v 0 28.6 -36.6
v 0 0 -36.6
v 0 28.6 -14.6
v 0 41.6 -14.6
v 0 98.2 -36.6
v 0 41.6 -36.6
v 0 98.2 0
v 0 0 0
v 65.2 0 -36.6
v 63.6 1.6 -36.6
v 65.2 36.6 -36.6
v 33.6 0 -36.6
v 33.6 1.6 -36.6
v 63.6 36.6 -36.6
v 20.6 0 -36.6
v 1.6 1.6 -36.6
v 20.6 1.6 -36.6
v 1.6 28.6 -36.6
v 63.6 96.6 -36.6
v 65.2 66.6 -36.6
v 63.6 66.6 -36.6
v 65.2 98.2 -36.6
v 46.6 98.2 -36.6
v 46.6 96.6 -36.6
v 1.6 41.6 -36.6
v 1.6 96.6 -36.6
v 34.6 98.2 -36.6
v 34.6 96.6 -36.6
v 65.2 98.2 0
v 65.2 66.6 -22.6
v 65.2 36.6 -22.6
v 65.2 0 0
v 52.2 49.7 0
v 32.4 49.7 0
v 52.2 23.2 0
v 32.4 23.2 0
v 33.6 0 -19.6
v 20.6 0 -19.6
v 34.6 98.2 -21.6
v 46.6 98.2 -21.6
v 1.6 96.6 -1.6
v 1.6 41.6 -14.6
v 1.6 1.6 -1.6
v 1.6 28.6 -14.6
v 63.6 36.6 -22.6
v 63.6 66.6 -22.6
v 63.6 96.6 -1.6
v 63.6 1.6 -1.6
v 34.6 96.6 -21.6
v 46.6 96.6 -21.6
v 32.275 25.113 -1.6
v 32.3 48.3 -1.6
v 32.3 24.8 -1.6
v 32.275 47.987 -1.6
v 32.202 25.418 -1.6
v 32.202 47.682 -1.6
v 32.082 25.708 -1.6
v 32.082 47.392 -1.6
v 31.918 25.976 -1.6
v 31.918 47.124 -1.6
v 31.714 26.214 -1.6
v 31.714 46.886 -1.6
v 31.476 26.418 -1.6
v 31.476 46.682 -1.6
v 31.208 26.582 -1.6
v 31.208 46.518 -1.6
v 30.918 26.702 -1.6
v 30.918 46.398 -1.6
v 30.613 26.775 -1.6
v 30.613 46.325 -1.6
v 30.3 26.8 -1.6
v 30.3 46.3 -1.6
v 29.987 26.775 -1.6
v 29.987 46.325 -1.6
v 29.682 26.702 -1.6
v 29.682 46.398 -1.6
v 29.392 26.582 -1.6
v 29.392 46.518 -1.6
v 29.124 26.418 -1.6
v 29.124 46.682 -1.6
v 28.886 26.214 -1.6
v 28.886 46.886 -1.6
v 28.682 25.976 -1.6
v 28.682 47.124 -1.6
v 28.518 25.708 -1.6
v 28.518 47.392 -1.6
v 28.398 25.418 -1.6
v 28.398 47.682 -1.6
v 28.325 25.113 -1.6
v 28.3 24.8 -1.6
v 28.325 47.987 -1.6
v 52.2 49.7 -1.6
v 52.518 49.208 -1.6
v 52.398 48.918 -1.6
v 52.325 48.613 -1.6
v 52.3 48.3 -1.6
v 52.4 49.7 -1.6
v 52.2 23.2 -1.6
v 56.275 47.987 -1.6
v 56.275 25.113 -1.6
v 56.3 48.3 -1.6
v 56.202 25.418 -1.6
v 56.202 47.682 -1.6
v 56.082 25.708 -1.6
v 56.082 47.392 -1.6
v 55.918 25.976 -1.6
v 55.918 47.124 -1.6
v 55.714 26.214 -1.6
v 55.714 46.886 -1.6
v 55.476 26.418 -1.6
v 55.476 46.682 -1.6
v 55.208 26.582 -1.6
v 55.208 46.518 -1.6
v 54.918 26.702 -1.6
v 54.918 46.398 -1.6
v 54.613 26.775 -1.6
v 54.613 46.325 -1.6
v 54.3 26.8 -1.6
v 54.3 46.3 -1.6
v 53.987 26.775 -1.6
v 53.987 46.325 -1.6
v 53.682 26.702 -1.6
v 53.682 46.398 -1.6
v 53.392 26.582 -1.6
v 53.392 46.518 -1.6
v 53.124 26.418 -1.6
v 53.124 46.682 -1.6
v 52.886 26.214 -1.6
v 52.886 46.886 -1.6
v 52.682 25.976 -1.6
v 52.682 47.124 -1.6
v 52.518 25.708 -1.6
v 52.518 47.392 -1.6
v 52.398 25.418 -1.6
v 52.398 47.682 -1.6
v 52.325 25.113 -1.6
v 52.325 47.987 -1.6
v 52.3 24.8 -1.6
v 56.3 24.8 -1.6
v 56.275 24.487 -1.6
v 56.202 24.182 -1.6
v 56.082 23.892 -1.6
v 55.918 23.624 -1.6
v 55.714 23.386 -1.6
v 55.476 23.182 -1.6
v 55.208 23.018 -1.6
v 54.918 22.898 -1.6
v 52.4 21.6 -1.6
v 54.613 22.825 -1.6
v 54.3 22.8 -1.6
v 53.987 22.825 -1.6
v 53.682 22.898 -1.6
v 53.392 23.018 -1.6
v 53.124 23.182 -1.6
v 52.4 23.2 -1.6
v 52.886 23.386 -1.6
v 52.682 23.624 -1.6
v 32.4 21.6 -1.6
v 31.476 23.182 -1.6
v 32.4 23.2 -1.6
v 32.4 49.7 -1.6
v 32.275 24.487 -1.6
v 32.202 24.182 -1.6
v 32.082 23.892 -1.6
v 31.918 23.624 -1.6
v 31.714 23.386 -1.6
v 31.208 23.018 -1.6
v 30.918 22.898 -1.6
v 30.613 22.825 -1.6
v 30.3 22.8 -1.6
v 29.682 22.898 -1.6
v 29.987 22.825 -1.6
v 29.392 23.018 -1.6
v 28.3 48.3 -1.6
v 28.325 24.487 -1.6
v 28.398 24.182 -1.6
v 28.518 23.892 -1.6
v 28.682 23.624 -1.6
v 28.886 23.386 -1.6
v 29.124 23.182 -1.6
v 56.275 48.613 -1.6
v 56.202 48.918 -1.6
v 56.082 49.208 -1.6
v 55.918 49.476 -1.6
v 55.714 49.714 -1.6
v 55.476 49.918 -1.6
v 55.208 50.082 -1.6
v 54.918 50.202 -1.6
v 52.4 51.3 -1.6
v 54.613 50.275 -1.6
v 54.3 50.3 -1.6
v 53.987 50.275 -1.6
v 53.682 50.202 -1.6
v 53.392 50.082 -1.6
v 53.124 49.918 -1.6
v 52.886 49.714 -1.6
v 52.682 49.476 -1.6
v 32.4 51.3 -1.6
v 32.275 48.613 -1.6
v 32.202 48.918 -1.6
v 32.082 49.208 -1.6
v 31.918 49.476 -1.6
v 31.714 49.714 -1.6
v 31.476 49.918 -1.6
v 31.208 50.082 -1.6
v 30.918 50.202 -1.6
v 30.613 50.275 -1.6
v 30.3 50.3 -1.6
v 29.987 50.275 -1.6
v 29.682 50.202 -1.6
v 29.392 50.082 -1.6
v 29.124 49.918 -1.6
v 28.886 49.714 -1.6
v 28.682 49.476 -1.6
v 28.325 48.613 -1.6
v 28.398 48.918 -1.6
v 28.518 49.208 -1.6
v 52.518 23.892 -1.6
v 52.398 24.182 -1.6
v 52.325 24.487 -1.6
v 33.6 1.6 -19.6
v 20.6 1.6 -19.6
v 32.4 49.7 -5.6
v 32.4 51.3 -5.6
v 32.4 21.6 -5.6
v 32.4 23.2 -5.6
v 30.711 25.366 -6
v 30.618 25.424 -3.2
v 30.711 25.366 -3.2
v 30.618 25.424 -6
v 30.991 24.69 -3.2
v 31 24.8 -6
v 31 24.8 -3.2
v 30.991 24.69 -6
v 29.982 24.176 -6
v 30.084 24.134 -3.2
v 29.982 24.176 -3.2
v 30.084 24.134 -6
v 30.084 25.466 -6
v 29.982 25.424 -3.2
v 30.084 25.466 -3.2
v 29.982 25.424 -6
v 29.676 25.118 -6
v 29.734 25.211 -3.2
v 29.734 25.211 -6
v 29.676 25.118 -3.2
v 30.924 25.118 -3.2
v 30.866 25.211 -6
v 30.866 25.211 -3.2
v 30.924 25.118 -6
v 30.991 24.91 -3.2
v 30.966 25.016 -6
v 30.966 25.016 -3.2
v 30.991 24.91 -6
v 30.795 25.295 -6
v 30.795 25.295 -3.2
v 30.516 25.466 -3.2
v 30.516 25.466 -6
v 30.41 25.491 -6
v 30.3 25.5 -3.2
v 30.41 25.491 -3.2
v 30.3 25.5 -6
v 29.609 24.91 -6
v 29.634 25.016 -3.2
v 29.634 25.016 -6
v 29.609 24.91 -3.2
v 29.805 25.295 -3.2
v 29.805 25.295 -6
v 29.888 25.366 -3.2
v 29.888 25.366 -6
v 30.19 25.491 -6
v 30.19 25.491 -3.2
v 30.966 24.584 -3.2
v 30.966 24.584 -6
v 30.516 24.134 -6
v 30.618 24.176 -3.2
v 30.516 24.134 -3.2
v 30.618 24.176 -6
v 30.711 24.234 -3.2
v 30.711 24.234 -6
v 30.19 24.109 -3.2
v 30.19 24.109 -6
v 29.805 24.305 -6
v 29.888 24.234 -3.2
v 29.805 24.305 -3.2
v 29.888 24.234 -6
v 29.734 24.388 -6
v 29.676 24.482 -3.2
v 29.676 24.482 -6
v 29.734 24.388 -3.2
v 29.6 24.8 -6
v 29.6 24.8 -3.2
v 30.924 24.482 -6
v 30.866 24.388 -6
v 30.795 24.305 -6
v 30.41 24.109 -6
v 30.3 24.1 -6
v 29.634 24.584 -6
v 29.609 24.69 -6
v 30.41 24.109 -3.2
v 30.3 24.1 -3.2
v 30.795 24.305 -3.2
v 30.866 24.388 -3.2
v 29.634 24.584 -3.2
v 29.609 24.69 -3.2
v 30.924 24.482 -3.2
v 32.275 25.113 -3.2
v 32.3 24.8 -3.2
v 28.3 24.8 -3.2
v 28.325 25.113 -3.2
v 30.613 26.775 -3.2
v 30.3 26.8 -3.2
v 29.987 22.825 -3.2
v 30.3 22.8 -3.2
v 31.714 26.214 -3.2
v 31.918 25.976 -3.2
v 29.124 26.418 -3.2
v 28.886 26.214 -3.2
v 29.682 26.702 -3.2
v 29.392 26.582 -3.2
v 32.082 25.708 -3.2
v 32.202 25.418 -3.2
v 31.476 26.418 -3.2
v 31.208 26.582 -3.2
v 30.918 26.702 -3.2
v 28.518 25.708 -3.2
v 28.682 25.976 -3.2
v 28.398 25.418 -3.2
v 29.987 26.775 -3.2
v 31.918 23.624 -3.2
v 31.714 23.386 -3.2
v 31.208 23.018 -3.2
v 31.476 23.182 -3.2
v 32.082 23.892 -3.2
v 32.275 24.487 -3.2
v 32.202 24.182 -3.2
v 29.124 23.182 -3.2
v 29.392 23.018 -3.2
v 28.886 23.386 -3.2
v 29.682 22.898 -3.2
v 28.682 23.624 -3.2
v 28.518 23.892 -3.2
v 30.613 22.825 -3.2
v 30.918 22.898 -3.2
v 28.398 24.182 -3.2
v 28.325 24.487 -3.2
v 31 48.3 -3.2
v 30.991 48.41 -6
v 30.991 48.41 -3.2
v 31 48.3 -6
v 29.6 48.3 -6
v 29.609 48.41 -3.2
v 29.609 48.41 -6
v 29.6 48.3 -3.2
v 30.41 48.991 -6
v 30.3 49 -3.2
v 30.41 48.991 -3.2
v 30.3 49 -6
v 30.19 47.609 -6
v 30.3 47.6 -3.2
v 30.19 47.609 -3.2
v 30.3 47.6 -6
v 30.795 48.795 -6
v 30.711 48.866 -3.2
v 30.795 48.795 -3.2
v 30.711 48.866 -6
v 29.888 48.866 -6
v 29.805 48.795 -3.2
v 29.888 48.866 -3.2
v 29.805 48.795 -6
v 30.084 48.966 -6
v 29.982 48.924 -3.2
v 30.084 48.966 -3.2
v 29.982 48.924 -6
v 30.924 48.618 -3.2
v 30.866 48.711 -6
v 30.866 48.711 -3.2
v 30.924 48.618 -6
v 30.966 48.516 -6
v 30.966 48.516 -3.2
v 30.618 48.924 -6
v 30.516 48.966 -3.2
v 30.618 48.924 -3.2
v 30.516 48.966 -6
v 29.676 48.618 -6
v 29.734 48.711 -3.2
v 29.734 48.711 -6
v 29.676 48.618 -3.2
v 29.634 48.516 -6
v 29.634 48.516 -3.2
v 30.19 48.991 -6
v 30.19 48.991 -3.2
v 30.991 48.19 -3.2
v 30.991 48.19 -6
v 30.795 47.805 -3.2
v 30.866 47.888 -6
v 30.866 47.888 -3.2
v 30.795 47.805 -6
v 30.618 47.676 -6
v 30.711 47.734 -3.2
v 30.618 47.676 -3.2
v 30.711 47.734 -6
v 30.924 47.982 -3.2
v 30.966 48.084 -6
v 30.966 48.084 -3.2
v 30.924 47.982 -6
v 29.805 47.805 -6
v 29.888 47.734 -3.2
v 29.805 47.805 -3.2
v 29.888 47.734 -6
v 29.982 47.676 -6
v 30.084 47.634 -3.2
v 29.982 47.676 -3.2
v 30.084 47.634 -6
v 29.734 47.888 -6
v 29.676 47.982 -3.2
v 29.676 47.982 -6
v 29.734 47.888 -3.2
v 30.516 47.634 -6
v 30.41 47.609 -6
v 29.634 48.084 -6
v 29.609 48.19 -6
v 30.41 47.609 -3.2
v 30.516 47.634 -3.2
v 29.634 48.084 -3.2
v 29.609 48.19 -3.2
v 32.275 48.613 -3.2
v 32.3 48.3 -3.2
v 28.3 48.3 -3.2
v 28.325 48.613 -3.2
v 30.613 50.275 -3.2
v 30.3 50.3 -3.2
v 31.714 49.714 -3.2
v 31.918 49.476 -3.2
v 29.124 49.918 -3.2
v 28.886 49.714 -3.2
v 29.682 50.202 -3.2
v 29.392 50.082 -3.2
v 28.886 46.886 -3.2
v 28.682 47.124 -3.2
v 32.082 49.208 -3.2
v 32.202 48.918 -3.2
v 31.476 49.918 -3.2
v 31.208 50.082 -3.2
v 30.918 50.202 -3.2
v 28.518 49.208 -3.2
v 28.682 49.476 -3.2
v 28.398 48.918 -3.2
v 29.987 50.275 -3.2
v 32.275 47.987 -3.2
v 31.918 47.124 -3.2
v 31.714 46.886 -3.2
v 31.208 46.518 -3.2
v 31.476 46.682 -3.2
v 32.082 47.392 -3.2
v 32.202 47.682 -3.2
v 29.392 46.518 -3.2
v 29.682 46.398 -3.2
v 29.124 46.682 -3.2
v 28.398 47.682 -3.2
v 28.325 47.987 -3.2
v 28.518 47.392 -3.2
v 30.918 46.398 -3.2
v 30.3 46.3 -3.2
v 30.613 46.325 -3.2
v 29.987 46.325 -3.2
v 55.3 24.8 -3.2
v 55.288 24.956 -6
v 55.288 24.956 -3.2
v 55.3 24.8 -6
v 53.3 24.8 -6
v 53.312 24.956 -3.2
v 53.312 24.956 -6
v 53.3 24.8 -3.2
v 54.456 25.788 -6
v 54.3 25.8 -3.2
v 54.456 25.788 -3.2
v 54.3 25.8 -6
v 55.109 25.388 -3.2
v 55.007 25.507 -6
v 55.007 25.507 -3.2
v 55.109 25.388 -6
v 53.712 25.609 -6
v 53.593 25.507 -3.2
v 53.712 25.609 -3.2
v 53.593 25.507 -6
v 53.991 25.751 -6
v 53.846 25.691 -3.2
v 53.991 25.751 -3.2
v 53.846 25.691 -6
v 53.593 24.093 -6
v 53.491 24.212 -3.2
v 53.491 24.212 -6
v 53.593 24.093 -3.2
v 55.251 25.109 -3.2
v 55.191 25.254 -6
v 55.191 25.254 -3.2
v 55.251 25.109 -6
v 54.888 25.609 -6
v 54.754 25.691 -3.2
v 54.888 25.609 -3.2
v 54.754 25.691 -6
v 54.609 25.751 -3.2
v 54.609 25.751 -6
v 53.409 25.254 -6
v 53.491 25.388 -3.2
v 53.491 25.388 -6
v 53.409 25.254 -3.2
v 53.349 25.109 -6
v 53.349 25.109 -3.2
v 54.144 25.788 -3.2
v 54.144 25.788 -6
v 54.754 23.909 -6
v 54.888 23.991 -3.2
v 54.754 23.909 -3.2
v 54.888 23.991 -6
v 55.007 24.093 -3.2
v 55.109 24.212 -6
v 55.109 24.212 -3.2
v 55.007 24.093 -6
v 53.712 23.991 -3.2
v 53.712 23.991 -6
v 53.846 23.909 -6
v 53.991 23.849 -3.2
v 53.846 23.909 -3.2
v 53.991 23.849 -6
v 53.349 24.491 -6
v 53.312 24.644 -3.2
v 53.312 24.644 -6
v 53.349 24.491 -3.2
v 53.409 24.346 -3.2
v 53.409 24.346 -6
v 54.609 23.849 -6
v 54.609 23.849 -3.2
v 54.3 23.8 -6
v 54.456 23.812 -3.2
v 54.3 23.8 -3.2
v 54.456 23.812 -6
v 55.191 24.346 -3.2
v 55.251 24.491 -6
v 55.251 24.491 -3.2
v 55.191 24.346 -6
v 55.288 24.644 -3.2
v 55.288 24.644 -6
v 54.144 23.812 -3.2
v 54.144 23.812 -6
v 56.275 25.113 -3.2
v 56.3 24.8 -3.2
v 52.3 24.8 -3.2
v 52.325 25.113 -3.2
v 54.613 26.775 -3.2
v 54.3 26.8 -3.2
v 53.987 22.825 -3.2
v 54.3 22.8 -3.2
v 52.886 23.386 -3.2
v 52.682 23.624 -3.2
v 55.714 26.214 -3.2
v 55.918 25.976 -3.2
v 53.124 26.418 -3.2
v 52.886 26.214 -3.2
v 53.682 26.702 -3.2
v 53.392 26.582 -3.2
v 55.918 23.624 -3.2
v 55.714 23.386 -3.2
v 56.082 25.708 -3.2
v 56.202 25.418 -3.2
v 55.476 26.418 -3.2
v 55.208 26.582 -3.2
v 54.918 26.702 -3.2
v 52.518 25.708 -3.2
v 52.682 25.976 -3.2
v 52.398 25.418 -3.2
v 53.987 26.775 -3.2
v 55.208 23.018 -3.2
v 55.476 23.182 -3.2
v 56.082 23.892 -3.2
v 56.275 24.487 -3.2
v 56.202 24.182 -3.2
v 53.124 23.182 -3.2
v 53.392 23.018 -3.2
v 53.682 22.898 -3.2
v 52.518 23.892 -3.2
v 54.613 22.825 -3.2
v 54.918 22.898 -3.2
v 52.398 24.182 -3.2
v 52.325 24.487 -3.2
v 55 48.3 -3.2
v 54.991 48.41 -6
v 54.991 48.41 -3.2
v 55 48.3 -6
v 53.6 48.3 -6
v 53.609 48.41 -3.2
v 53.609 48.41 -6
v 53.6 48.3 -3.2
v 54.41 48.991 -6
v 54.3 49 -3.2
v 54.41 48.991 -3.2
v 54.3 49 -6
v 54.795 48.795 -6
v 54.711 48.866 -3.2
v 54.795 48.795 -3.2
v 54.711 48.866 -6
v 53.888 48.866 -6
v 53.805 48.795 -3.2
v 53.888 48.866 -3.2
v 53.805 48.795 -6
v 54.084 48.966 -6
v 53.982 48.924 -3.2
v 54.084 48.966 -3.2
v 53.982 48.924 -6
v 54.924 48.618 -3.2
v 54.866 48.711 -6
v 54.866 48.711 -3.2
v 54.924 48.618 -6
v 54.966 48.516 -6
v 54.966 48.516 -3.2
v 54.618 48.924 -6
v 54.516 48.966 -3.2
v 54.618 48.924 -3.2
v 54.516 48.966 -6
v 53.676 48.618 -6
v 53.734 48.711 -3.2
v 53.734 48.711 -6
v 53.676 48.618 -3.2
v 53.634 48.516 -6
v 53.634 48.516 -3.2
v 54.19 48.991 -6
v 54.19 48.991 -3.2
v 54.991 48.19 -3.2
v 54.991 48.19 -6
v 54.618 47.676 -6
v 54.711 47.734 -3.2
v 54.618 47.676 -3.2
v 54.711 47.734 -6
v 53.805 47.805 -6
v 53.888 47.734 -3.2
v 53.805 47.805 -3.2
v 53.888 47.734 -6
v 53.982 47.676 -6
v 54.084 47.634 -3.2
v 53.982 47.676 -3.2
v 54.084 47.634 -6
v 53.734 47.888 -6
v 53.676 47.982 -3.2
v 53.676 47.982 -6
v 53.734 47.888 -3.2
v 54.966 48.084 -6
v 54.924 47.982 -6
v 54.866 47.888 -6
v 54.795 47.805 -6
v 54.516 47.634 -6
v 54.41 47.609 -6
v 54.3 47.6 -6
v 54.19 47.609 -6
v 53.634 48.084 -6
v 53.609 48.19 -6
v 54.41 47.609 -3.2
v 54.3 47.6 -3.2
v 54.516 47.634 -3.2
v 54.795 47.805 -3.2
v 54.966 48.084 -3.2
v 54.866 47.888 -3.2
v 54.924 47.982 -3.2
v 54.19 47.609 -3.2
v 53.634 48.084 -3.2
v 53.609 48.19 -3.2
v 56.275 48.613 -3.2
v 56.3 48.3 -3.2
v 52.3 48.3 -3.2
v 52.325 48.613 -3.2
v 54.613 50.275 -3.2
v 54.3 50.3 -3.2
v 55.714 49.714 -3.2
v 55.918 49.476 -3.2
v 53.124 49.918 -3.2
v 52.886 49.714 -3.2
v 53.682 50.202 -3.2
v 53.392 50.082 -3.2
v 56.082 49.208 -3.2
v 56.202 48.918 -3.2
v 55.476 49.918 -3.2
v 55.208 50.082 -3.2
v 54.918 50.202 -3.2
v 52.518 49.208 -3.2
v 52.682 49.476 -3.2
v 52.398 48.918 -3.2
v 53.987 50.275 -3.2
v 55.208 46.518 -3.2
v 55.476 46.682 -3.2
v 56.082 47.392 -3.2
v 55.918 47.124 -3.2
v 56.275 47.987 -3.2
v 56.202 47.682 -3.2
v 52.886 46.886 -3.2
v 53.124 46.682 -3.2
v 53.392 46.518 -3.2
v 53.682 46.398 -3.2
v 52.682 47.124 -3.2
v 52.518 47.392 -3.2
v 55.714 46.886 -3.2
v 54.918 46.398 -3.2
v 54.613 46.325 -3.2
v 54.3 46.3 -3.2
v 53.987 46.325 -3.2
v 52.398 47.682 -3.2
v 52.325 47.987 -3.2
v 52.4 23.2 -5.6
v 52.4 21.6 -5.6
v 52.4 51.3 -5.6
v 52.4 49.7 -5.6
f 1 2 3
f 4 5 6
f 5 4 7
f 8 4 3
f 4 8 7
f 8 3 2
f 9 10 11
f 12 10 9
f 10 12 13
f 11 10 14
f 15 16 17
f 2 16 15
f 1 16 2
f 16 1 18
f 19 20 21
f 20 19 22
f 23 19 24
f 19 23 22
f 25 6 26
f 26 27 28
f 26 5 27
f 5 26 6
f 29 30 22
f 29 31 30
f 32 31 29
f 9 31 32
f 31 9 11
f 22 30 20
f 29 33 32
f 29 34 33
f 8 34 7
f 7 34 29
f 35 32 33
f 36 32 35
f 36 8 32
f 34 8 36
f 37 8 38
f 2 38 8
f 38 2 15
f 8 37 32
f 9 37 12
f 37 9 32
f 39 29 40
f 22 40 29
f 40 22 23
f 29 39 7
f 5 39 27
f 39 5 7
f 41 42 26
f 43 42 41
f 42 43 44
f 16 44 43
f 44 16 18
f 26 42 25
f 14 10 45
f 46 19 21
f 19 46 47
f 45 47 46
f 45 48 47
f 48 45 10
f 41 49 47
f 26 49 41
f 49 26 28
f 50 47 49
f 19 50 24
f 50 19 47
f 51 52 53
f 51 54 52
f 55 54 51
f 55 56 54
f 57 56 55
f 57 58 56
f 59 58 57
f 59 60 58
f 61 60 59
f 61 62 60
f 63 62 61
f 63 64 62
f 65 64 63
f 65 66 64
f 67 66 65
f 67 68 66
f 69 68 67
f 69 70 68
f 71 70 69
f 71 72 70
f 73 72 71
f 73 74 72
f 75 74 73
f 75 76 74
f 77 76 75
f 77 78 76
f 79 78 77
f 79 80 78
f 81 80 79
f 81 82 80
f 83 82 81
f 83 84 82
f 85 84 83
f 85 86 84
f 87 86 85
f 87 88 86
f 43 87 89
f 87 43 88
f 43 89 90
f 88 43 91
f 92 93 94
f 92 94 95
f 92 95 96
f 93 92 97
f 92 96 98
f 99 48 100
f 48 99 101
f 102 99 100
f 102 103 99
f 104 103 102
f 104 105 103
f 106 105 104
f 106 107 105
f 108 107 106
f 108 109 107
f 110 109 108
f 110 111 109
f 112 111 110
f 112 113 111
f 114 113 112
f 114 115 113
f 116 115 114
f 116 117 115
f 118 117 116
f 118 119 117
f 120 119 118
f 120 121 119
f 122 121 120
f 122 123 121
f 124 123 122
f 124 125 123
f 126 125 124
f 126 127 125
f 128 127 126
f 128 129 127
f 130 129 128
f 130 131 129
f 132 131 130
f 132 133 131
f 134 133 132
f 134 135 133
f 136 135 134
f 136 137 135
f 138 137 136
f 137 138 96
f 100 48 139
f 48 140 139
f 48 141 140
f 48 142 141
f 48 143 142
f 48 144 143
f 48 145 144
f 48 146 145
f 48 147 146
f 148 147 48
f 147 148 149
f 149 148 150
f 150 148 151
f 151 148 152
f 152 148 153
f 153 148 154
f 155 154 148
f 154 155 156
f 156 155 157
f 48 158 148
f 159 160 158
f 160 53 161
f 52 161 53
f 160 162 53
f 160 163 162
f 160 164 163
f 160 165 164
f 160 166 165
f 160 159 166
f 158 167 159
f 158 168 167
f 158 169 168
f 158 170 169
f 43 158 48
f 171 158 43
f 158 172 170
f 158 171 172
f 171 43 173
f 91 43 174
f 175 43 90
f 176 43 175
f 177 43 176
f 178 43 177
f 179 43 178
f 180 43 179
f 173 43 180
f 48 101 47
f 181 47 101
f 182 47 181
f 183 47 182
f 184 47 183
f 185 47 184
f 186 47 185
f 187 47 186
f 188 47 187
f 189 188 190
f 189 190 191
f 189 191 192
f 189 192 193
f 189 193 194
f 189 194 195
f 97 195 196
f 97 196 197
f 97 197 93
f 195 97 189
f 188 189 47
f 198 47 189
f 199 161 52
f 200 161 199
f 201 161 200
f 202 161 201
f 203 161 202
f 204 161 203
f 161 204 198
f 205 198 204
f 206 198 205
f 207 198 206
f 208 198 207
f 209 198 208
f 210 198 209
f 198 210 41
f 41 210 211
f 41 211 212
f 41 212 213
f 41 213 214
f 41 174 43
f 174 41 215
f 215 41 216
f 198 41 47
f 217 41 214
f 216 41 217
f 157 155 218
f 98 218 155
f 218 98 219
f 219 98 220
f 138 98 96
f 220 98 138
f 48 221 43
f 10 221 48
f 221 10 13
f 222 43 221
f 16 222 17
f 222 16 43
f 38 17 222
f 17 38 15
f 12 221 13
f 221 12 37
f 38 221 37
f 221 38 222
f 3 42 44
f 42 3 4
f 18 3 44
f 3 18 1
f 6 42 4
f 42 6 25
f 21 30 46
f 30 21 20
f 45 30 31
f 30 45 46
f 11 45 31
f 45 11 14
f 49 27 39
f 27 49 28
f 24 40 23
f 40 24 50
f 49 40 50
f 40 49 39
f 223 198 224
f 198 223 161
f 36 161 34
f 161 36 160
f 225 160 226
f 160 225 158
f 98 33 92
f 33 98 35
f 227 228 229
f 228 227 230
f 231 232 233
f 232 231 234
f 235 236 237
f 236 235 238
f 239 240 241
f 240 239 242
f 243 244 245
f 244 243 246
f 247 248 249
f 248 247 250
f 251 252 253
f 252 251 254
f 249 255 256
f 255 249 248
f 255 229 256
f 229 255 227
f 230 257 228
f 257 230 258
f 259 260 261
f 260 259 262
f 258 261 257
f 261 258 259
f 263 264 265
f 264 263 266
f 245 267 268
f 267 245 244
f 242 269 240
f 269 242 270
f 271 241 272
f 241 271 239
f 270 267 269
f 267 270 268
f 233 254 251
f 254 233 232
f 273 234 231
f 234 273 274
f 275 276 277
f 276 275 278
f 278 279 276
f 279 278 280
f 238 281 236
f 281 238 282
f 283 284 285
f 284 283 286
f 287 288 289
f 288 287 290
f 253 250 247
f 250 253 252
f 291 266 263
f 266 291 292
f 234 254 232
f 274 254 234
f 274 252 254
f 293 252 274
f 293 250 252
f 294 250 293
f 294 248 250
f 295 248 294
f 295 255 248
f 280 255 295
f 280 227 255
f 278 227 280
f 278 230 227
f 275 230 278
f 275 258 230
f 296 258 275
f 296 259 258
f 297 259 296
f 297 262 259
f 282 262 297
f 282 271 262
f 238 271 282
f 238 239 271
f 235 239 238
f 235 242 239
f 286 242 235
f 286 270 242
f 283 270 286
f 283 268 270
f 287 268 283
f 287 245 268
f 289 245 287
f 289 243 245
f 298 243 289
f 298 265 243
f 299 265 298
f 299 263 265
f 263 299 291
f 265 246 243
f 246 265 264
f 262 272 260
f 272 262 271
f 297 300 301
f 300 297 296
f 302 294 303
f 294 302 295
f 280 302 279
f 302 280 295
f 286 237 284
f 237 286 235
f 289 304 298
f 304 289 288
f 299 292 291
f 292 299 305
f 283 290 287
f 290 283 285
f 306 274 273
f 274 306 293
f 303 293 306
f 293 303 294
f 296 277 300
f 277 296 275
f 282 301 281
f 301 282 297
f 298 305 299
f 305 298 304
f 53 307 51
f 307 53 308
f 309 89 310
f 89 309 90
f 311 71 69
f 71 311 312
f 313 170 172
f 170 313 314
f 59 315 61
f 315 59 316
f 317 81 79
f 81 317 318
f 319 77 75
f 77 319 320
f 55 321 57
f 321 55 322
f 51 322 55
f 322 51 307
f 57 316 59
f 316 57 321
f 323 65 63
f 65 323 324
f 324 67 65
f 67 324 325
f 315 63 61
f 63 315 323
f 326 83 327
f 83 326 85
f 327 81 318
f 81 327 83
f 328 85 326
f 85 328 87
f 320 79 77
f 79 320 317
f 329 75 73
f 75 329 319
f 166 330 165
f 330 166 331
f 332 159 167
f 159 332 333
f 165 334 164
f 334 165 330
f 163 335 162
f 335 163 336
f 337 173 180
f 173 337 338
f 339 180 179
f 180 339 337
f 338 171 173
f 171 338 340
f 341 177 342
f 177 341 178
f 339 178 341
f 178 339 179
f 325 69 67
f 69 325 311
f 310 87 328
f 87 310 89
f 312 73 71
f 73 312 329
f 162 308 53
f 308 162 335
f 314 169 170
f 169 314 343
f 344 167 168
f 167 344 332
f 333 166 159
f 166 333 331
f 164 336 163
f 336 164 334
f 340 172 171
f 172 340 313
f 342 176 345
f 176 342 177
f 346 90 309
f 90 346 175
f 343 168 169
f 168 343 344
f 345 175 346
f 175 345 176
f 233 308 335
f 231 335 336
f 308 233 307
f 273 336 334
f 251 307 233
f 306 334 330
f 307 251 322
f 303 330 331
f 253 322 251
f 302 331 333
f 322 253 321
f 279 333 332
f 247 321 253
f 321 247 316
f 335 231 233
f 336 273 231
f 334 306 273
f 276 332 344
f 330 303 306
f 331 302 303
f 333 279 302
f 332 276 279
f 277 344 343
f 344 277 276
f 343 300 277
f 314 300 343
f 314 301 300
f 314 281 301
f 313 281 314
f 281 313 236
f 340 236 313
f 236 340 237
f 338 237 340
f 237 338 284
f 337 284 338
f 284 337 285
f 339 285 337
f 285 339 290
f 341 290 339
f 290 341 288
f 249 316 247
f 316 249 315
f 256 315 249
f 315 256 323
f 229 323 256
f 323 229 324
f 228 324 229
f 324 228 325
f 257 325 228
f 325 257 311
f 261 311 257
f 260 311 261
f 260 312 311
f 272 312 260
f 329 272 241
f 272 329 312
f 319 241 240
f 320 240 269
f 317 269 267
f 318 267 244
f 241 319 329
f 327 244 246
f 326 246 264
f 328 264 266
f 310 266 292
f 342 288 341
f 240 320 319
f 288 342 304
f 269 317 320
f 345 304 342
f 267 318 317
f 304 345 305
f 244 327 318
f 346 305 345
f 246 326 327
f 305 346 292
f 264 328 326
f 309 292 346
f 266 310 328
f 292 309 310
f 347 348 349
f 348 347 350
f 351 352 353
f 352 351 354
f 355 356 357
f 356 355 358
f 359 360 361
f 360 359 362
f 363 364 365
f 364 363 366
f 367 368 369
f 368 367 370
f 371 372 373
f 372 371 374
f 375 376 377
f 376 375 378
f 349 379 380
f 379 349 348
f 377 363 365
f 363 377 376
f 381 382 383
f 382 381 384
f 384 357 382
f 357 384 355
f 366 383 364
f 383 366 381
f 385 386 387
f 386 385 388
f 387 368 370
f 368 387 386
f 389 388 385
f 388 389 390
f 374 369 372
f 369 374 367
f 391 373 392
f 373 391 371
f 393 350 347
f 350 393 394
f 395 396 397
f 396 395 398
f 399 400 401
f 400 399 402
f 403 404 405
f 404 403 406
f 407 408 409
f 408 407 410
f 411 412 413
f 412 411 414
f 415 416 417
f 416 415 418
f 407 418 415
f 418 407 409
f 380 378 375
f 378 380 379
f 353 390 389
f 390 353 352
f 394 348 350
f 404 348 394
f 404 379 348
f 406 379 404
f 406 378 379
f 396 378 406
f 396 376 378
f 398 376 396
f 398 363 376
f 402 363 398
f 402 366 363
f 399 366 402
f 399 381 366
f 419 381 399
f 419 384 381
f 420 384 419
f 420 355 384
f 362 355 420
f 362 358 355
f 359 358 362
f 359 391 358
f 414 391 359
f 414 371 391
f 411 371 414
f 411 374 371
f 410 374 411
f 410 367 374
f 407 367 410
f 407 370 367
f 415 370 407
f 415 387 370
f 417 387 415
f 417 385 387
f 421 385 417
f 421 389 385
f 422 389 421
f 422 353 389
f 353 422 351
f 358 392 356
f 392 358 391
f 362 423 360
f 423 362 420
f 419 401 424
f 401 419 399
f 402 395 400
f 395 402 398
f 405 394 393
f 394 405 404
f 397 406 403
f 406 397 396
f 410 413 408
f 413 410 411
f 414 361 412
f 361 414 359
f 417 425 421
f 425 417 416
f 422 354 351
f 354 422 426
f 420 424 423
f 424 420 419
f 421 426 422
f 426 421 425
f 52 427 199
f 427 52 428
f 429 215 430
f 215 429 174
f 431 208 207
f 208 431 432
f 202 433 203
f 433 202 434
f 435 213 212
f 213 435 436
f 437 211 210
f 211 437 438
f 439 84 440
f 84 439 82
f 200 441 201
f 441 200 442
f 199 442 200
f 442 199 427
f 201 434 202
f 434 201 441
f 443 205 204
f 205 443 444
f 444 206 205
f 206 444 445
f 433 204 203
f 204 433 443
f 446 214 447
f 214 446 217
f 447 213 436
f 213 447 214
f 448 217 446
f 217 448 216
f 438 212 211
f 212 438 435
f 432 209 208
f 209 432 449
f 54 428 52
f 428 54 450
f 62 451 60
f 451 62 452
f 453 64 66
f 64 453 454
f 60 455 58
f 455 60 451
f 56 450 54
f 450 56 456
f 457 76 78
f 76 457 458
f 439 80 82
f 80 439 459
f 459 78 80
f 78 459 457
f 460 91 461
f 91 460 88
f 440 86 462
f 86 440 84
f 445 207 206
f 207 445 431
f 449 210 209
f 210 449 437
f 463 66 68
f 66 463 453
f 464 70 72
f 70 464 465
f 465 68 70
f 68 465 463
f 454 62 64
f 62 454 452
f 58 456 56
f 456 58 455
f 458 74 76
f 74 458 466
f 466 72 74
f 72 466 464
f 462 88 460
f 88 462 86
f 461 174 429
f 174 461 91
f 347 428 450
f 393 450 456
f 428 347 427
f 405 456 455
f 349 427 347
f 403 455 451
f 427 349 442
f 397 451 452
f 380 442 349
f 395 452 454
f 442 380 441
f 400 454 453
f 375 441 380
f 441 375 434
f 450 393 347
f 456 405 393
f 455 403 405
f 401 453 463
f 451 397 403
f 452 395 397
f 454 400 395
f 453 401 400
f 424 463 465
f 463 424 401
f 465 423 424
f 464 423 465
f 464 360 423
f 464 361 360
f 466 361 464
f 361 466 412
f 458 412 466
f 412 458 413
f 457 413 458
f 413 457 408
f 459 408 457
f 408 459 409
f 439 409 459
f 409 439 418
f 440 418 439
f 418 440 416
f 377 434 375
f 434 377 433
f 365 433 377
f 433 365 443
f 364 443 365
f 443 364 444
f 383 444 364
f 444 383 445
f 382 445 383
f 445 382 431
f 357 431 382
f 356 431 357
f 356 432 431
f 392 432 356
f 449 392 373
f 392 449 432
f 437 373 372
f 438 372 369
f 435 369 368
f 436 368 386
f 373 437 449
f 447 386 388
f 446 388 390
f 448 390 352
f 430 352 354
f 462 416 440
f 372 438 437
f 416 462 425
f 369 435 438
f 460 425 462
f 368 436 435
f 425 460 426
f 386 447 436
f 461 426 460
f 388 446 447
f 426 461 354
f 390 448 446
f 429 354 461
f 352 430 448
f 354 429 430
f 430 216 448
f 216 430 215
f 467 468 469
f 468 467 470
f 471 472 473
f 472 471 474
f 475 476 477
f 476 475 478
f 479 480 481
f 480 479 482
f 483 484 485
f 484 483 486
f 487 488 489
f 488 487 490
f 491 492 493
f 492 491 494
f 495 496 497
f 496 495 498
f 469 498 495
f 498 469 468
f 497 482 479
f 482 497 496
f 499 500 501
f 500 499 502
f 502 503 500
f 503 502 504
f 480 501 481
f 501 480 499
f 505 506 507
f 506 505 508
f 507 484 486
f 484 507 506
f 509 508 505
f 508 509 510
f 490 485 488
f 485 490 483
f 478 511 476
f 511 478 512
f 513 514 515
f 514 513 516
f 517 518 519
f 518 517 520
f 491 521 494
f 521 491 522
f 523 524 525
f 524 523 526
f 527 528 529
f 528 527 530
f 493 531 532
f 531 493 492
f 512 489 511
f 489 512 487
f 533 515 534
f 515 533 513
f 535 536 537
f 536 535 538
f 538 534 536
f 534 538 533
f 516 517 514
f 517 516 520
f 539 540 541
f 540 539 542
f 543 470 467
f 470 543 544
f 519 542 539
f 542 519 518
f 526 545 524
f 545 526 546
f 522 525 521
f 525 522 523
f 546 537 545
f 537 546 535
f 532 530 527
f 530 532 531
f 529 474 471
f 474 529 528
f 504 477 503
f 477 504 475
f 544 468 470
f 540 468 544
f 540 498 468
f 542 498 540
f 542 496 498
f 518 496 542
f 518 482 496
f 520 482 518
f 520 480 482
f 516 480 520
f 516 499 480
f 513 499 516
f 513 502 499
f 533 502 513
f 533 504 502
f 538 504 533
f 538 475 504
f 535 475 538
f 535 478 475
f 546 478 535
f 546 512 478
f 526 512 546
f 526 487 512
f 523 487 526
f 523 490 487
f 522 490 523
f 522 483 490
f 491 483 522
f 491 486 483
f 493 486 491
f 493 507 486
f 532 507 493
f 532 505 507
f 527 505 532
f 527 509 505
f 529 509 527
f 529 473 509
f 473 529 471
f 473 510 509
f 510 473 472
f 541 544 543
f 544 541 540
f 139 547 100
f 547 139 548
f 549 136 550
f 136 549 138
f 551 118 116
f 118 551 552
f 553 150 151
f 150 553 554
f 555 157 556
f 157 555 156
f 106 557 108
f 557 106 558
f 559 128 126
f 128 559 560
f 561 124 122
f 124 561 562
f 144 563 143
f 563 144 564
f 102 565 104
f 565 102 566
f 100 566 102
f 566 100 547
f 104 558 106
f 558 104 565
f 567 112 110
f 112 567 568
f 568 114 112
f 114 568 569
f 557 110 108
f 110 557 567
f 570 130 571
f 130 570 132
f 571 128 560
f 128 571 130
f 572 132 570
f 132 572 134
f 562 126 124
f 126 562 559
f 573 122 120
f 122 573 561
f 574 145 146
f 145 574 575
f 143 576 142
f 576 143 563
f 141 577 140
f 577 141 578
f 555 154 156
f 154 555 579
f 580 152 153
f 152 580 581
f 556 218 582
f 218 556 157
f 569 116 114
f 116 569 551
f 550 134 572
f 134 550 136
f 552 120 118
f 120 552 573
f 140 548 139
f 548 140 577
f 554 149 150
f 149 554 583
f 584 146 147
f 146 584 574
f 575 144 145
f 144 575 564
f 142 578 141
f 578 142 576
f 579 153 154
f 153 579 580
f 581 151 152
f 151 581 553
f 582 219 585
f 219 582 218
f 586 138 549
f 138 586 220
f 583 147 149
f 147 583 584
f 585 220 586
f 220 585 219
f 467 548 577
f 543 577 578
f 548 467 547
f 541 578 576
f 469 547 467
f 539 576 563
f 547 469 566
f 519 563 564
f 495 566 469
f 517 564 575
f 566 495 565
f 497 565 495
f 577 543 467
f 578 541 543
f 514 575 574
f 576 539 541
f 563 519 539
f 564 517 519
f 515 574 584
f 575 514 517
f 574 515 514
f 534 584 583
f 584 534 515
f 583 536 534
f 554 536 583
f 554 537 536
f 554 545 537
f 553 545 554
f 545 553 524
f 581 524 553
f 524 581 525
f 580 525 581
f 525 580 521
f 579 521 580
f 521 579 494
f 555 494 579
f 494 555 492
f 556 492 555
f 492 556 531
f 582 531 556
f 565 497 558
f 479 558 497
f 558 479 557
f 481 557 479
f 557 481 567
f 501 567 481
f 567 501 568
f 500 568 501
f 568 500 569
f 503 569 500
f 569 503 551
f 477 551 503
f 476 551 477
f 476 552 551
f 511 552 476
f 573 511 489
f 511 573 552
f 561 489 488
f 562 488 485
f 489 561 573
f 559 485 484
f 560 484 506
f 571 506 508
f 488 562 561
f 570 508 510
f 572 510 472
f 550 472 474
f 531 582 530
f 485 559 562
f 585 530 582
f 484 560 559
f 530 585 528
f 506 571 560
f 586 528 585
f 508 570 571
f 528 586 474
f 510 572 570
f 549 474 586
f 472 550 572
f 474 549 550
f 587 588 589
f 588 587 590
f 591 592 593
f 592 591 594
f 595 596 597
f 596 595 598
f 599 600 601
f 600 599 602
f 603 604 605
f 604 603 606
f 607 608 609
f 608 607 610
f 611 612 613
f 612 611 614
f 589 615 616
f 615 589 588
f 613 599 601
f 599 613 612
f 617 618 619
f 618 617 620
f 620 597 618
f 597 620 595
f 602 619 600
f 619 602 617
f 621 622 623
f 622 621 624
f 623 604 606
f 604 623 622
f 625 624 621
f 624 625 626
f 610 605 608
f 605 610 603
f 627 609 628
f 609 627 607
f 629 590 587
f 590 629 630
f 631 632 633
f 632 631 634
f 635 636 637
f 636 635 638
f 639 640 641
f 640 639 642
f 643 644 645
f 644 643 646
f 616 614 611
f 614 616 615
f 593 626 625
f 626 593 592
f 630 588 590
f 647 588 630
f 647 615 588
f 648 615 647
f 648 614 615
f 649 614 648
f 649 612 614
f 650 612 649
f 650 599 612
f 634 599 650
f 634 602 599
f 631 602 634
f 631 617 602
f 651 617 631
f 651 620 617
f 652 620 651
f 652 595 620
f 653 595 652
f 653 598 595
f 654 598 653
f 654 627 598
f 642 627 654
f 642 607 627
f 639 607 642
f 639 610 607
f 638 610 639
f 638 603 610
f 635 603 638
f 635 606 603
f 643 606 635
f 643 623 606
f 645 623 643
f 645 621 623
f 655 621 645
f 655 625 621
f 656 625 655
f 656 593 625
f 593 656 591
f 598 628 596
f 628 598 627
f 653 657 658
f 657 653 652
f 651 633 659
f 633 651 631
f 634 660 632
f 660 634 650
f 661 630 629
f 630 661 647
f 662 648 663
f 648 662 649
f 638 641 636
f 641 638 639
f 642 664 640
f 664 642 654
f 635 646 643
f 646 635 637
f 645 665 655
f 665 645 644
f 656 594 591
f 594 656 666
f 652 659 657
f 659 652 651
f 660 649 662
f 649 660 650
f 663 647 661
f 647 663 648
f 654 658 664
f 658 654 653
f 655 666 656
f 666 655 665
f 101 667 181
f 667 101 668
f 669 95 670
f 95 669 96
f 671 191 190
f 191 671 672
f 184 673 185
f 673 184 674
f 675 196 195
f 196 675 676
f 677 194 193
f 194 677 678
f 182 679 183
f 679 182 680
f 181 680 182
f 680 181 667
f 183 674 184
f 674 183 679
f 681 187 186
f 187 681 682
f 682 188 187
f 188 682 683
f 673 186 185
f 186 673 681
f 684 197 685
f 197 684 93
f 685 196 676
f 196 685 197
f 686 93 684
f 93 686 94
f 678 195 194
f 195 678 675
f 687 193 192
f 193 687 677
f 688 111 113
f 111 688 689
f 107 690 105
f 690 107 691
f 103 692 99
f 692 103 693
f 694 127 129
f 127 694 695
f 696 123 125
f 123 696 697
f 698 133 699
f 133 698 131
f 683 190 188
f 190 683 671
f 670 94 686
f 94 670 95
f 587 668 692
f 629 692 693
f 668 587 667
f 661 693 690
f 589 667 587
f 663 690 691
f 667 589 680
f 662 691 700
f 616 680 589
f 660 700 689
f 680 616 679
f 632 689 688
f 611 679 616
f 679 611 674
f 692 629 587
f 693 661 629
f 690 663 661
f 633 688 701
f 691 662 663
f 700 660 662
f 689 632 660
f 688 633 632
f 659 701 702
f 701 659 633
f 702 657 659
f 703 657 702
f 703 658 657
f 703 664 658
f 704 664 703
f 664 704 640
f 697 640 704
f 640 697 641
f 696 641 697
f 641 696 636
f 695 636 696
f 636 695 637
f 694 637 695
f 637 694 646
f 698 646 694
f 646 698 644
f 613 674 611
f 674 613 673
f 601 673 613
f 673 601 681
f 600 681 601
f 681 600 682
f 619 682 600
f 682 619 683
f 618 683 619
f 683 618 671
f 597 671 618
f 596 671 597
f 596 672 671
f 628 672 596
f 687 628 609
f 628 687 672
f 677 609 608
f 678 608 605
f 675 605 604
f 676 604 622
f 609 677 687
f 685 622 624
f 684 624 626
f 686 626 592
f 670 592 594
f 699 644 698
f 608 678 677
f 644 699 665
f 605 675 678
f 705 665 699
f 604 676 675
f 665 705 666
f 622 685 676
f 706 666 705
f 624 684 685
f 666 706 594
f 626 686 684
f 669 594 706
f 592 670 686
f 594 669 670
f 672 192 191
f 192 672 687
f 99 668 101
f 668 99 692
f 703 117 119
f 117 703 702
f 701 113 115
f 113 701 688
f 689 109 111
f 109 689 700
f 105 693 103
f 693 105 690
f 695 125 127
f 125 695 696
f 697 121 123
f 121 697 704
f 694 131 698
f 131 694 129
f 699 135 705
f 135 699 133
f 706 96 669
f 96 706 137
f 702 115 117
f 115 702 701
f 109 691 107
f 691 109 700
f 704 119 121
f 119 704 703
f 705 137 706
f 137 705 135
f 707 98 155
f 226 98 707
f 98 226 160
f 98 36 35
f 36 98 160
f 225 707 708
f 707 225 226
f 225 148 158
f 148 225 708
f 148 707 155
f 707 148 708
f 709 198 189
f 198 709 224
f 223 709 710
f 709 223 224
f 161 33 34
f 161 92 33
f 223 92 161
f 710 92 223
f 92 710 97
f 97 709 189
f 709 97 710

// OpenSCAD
//Procedural Project Box Screws

//40mm x 60 board size

inside_width = 62;
inside_length = 95;
inside_height = 35;
pole_height=6;
pole_wall_dist = 4.5;

$fn=40;

wall_thickness=1.6;

module doPole(trans=[0,0], dia=2.9, base=4, ph=pole_height) {
    translate([2*wall_thickness,2*wall_thickness])translate(trans) {
        cylinder(d=dia,h=ph);
        cylinder(d=base,h=2*wall_thickness);
    }
        
}



mirror([0,0,1])
union(){
//translate([0,inside_length+2*wall_thickness,0])rotate([0,0,90])
    mirror([0,0,0])
    difference() {
    cube([inside_width+2*wall_thickness, 
        inside_length+2*wall_thickness,
        inside_height+wall_thickness]);
    translate([wall_thickness,wall_thickness,wall_thickness])cube([inside_width, 
        inside_length,
        inside_height]);

    // USB
    translate([19+wall_thickness,-5,inside_height+wall_thickness-17])cube([13,10,17]);        
    
    // DHT11 in
    translate([-5,27+wall_thickness,inside_height+wall_thickness-22])cube([11,13,22]);
        
    // Power / DHT out
    translate([inside_width+2*wall_thickness-5,35+wall_thickness,wall_thickness+inside_height-14])cube([10,30,14]);

    // MOSFET
    translate([33+wall_thickness,inside_length-5,wall_thickness+inside_height-15])cube([12,10,15]);
        

    // OLED
    translate([30.8+wall_thickness,21+wall_thickness,wall_thickness-10])cube([19.8,28.5,20]);

    
}

    // Poles for OLED
    doPole([wall_thickness+31-2-3.5, wall_thickness+21-1],1.4) ;
    doPole([wall_thickness+31-2-3.5, wall_thickness+21-1+27.5-4],1.4) ;
    doPole([wall_thickness+31-2-3.5+28-4, wall_thickness+21-1],2) ;
    doPole([wall_thickness+31-2-3.5+28-4, wall_thickness+21-1+27.5-4],1.4) ;

    // Clips for OLED
    color([0,1,0])translate([30.8+wall_thickness+20,20+wall_thickness,0])rotate([0,0,90])cube([wall_thickness,20,4+wall_thickness]);
    color([0,1,0])translate([30.8+wall_thickness+20,20+28.1+wall_thickness,0])rotate([0,0,90])cube([wall_thickness,20,4+wall_thickness]);


//translate([-inside_width-3*wall_thickness,0,0]) {
//
//  union() {
//    cube([inside_width+2*wall_thickness, 
//        inside_length+2*wall_thickness,
//        wall_thickness]);
//
//    difference(){translate([wall_thickness,wall_thickness,wall_thickness])cube([inside_width, 
//        inside_length,
//        wall_thickness]);
//      
//         translate([2*wall_thickness,2*wall_thickness,wall_thickness]) cube([inside_width-2*wall_thickness, 
//        inside_length-2*wall_thickness,
//        wall_thickness]);
//    }
//    translate([inside_width/2+wall_thickness,inside_length/2+wall_thickness])difference(){
//        resize([20,inside_length+25])cylinder(d=10,h=wall_thickness);
//        translate([0,-inside_length/2-7])cylinder(d=3,h=10*wall_thickness);
//        translate([0,inside_length/2+7])cylinder(d=3,h=10*wall_thickness);
//    }
//    
//}
//
//
//union(){
//    
//    
//    // Poles for main board
//    doPole([pole_wall_dist, pole_wall_dist]) ;
//    doPole([pole_wall_dist+48.26,pole_wall_dist]) ;
//    doPole([pole_wall_dist, pole_wall_dist+63.5]) ;
//    doPole([pole_wall_dist+48.26, pole_wall_dist+63.5]) ;
//
//    // Poles for MOSFET
//    doPole([10, 76.5], 1.9, 4);
//    doPole([10, 90], 1.9, 4) ;
//    doPole([30, 83], 1.9, 4, 3*wall_thickness);
//    
//  }
//  }
}
    

        
